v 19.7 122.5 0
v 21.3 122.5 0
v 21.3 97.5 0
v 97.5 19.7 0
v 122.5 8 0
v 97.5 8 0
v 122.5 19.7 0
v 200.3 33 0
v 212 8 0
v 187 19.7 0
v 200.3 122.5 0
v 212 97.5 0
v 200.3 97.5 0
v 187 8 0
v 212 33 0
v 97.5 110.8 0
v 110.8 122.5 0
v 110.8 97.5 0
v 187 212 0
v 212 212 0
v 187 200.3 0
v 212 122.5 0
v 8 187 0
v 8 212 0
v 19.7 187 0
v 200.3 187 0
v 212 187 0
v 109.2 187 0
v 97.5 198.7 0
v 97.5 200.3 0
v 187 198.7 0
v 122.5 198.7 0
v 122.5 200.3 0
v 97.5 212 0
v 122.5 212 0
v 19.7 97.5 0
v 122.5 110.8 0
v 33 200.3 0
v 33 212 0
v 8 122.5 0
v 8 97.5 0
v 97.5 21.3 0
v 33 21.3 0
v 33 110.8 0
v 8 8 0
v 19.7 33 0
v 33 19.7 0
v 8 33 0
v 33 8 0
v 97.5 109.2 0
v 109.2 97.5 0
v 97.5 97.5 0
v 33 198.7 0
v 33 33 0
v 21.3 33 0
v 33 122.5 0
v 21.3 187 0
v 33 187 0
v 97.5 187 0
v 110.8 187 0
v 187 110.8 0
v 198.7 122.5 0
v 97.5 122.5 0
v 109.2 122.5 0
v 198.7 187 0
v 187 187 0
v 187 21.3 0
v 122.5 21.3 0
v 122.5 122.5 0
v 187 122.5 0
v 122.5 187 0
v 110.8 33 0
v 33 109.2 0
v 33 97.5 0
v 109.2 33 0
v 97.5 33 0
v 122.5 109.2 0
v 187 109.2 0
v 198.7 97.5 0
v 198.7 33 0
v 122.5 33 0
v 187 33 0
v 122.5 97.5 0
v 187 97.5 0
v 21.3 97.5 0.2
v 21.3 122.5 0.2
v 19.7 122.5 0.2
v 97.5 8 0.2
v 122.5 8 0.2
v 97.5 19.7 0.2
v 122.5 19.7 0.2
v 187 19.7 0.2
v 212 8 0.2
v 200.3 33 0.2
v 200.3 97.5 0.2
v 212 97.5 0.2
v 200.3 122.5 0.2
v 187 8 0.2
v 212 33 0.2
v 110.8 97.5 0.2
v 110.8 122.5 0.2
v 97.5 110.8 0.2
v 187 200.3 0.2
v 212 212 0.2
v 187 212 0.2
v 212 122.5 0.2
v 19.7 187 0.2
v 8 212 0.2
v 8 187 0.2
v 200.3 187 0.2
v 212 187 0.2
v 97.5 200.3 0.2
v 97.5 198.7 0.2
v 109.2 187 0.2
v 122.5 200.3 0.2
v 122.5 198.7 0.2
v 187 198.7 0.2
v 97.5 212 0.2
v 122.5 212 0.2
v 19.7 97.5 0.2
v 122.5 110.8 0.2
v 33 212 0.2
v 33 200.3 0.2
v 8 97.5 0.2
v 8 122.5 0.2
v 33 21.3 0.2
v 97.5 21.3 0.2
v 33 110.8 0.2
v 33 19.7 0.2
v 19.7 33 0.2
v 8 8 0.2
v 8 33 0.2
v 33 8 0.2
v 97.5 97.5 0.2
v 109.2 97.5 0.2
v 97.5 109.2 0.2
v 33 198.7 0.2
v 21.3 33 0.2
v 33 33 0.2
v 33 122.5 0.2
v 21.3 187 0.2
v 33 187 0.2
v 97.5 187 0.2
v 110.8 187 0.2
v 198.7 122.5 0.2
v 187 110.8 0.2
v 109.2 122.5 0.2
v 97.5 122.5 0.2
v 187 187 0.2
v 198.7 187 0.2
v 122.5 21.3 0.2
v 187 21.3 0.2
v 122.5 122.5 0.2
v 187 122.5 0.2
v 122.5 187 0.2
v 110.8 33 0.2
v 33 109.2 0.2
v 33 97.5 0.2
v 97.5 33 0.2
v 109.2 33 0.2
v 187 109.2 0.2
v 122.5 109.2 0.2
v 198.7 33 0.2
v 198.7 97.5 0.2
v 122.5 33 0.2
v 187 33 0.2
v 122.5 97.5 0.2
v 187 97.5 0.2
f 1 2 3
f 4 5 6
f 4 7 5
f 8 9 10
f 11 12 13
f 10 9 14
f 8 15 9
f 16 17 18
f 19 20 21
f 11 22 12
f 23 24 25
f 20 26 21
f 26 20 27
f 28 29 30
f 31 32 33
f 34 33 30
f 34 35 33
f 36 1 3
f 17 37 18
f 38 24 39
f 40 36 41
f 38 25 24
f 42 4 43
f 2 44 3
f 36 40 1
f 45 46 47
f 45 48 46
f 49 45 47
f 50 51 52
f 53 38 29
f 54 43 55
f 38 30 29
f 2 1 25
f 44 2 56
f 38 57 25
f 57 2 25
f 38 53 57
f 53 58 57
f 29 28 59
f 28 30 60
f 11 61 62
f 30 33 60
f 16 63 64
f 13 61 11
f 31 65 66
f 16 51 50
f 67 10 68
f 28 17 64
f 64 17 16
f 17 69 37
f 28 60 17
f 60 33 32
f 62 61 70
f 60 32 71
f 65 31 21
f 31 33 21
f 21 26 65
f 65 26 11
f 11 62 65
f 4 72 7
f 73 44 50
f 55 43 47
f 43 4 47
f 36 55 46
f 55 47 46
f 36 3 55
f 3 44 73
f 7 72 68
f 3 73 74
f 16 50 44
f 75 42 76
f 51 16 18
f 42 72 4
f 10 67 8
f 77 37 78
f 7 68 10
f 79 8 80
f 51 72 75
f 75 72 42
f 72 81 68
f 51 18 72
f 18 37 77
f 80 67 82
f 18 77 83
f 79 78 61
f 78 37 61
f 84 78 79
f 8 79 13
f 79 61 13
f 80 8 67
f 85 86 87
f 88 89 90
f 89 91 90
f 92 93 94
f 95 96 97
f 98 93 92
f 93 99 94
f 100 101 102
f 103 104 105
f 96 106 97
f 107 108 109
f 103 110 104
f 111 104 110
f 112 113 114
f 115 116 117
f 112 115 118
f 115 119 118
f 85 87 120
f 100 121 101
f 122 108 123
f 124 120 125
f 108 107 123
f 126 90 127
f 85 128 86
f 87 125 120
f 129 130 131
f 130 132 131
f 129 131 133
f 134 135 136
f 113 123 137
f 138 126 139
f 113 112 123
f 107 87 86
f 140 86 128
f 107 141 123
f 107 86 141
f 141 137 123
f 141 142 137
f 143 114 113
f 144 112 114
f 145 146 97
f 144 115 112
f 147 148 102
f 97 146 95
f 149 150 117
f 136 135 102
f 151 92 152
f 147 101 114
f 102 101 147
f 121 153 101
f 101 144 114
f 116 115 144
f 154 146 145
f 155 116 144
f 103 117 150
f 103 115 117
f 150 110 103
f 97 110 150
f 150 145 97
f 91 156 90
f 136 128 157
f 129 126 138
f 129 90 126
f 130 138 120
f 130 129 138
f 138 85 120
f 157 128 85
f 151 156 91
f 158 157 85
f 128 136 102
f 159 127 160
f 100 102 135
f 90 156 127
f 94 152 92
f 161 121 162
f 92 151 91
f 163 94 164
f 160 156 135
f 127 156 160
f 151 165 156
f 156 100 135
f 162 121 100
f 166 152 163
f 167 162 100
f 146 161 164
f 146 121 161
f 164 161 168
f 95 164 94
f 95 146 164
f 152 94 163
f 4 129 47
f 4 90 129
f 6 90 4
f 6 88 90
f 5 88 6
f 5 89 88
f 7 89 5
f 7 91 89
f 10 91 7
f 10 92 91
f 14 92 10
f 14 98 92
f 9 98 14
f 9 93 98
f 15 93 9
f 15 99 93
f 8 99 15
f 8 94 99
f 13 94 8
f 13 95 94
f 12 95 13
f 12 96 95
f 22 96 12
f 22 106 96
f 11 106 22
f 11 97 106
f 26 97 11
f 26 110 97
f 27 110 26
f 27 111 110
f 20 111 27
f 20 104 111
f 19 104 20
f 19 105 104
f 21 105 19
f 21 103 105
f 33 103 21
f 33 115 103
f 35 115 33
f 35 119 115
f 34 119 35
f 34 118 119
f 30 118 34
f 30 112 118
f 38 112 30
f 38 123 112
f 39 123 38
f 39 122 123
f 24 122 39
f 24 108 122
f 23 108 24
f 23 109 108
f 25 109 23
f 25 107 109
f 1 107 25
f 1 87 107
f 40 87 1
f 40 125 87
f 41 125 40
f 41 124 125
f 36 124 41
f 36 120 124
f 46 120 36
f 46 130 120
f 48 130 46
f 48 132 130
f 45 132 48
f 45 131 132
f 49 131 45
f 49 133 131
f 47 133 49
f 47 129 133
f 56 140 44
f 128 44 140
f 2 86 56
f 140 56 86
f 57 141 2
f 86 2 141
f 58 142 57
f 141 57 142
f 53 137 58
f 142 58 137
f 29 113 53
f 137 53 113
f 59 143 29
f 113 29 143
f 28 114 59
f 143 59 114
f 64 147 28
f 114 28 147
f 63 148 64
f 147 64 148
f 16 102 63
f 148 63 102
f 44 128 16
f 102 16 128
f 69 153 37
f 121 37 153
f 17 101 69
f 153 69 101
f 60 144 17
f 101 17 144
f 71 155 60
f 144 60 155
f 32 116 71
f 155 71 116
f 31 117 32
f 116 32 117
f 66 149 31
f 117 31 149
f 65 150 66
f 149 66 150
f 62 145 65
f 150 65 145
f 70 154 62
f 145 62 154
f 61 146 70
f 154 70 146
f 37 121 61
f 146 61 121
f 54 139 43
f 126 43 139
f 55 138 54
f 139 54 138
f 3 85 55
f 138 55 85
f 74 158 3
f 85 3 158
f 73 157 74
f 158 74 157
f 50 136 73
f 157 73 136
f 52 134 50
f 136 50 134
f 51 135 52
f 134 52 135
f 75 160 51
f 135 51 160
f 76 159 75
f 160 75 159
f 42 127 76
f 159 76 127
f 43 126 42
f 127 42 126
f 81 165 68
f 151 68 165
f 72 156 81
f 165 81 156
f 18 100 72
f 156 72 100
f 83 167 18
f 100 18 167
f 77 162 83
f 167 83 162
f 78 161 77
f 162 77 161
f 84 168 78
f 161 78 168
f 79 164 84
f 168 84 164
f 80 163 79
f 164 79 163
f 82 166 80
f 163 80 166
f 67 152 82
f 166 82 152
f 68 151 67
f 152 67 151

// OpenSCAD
// Bed Level
// 5@axes

$fn = 20;

t_bed_width = 220;
t_bed_depth = 220;
t_bed_border = 8;
t_shape_xcount = 3;
t_shape_ycount = 3;
t_shape_xsize = 25;
t_shape_ysize = 25;
t_line_width = 1.6;
t_thickness = 0.2;


// Bed size
t_print_width = t_bed_width - t_shape_xsize - (2*t_bed_border);
t_print_depth = t_bed_depth - t_shape_ysize - (2*t_bed_border);

// Grid area
translate([t_bed_width/2,t_bed_depth/2]){
    %square([t_print_width,t_print_depth], true);
}

// Print area
translate([t_bed_width/2,t_bed_depth/2]){
    %square([t_bed_width-(2*t_bed_border),t_bed_depth-(2*t_bed_border)], true);
}

linear_extrude(height = t_thickness) { 
    // shift everything to center in print area
    translate([(t_shape_xsize/2)+t_bed_border,(t_shape_ysize/2)+t_bed_border,0]){
        // intervals between printed shapes
        t_increment_x = t_print_width / (t_shape_xcount-1);
        t_increment_y = t_print_depth / (t_shape_ycount-1);
    
        // draw grid
        // draw horizontal lines along X axis
        for(t_curr_x = [0:t_shape_xcount-1]){
            translate([t_center_x, t_print_depth/2, 0]){
                square([t_line_width,t_print_depth], true);
            }
            t_center_x = t_curr_x * t_increment_x;
        }
        // draw vertical lines along Y axis
        for(t_curr_y = [0:t_shape_ycount-1]){
            translate([t_print_width/2, t_center_y, 0]){
                square([t_print_width, t_line_width], true);
            }
            t_center_y = t_curr_y * t_increment_y;
        }
        
        // draw shapes
        for(t_curr_x = [0:t_shape_xcount-1]){
            for(t_curr_y = [0:t_shape_ycount-1]){
                translate([t_center_x,t_center_y]){
                    square([t_shape_xsize,t_shape_ysize],true);
                }
                t_center_y = t_curr_y * t_increment_y;
            }
            t_center_x = t_curr_x * t_increment_x;
        }
    }
}
